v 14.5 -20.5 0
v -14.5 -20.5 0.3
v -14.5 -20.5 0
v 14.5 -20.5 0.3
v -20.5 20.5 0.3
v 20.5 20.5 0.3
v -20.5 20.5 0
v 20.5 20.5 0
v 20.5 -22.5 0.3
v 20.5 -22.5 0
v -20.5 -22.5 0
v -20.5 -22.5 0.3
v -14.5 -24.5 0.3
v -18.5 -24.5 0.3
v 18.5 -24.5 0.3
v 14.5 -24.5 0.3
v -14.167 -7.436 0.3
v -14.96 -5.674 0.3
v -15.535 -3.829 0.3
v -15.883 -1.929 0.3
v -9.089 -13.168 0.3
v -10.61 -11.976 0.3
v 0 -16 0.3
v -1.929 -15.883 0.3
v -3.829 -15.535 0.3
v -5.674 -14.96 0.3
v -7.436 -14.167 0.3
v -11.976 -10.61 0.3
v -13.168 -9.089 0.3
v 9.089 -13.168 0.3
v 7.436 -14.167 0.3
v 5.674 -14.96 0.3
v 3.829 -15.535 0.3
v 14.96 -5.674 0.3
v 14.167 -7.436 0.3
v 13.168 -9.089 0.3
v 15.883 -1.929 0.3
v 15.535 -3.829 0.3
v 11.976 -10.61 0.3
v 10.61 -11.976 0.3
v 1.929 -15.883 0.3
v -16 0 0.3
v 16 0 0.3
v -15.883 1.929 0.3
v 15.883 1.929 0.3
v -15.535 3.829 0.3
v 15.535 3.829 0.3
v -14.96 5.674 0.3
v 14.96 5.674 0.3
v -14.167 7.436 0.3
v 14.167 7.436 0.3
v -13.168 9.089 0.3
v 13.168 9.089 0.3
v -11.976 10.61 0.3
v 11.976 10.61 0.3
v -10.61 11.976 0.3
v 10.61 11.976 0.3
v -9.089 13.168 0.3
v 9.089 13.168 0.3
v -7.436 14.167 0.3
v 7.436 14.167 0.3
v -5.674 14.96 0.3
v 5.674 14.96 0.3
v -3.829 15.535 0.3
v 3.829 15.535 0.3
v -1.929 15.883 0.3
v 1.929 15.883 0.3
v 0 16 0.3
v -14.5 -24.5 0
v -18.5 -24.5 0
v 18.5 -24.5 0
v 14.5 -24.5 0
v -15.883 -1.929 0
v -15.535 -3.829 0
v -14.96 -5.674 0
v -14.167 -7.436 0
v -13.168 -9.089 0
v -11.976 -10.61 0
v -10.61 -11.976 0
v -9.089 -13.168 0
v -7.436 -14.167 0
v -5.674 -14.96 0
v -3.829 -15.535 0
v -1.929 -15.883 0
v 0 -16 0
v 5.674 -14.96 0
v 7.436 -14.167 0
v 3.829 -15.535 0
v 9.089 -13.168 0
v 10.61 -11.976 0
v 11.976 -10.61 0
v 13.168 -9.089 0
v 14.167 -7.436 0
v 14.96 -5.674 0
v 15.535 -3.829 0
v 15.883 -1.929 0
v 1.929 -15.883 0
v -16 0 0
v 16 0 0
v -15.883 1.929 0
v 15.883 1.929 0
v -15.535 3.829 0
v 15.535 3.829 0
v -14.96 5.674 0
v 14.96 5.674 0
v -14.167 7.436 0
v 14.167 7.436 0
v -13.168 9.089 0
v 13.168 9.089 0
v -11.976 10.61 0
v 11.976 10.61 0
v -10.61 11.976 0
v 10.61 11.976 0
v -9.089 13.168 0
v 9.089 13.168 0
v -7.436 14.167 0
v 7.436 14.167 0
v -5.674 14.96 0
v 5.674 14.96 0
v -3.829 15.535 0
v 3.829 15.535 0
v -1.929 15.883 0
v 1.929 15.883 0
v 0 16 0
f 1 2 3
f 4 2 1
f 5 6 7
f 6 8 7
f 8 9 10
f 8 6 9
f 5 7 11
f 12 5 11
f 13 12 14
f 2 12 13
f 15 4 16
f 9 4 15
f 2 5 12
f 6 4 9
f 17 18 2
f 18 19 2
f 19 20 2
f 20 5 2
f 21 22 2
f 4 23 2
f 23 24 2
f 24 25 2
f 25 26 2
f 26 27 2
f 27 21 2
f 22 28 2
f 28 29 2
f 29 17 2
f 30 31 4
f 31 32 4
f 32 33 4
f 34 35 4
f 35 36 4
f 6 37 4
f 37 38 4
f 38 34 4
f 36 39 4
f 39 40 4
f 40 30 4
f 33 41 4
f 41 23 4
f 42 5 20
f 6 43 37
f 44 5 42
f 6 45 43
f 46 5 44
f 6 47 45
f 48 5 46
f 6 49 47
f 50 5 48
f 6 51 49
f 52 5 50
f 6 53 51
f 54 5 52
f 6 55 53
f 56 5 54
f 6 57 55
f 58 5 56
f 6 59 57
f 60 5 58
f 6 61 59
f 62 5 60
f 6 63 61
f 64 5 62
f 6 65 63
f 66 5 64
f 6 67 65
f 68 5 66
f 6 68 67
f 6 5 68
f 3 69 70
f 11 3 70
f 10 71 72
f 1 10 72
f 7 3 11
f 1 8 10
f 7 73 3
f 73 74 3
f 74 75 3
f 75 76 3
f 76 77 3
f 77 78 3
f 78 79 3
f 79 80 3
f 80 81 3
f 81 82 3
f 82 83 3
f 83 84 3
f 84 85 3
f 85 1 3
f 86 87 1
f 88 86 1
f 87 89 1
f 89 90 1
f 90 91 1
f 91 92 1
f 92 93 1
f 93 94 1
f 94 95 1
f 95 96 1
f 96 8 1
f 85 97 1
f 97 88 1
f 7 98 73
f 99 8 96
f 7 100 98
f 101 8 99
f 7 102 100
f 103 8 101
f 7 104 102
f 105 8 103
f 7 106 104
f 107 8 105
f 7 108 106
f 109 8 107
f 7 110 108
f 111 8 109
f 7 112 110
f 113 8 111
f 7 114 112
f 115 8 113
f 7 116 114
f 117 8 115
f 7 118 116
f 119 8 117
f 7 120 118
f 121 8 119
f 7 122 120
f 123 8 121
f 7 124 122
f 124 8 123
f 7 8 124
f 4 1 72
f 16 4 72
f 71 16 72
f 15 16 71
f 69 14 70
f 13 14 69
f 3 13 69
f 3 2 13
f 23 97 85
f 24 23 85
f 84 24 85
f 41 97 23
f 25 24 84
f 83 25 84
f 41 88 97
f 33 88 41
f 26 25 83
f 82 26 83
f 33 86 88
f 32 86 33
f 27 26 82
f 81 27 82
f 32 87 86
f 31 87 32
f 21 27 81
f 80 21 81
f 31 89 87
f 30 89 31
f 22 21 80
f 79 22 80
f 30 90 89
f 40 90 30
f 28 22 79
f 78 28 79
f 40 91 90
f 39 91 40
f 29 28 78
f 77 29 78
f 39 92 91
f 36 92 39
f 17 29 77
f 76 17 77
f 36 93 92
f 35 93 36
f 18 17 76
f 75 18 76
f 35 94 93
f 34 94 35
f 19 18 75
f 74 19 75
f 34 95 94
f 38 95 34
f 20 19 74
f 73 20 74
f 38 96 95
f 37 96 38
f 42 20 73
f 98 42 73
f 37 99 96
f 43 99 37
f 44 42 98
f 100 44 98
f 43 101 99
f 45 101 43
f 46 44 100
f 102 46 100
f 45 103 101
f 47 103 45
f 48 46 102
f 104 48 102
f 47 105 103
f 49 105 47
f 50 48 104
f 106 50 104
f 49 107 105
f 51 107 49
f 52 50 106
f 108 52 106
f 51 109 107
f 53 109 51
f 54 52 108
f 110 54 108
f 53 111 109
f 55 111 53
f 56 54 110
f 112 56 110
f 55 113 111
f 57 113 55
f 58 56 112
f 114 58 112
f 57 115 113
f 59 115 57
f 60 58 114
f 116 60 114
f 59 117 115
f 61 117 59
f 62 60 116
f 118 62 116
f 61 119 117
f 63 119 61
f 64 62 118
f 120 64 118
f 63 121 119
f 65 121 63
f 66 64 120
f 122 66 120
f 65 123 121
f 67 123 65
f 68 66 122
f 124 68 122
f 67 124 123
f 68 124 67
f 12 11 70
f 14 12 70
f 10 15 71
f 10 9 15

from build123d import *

# Parameters (mm, degrees)
ESQUISSE1_W             = 41
ESQUISSE1_H             = 41
BOSS_EXTRU_1_DEPTH      = 0.3
ESQUISSE2_W             = 6
ESQUISSE2_H             = 4
BOSS_EXTRU_2_DEPTH      = 0.3
ESQUISSE3_R             = 12.5
ENL_V_MAT_EXTRU_1_DEPTH = 1.3
ESQUISSE4_R             = 16
ENL_V_MAT_EXTRU_2_DEPTH = 1.3
CHANFREIN1_SIZE         = 2
CHANFREIN2_SIZE         = 2
ESQUISSE6_W             = 6
ESQUISSE6_H             = 4
ENL_V_MAT_EXTRU_4_DEPTH = 1.3


with BuildPart() as part:
    # Esquisse1 → Boss.-Extru.1 (new body)
    with BuildSketch(Plane.XY):
        Rectangle(ESQUISSE1_W, ESQUISSE1_H)
    extrude(amount=BOSS_EXTRU_1_DEPTH)

    # Esquisse2 → Boss.-Extru.2 (add)
    with BuildSketch(Plane(origin=(0, 0, 0), x_dir=(-1, 0, 0), z_dir=(0, 0, -1))):
        with Locations((17.5, 22.5)):
            Rectangle(ESQUISSE2_W, ESQUISSE2_H)
        with Locations((-17.5, -22.5)):
            Rectangle(ESQUISSE2_W, ESQUISSE2_H)
        with Locations((17.5, -22.5)):
            Rectangle(ESQUISSE2_W, ESQUISSE2_H)
    extrude(amount=-BOSS_EXTRU_2_DEPTH)

    # Esquisse3 → Enlèv. mat.-Extru.1 (cut, through all)
    with BuildSketch(Plane(origin=(0, 0, 0), x_dir=(-1, 0, 0), z_dir=(0, 0, -1))):
        Circle(ESQUISSE3_R)
    extrude(amount=-ENL_V_MAT_EXTRU_1_DEPTH, mode=Mode.SUBTRACT)

    # Esquisse4 → Enlèv. mat.-Extru.2 (cut, through all)
    with BuildSketch(Plane(origin=(0, 0, 0), x_dir=(-1, 0, 0), z_dir=(0, 0, -1))):
        Circle(ESQUISSE4_R)
    extrude(amount=-ENL_V_MAT_EXTRU_2_DEPTH, mode=Mode.SUBTRACT)

    # Chanfrein1
    chanfrein1_edges = [part.edges().sort_by_distance(p)[0] for p in [
        (-20.5, -24.5, 0.15),
    ]]
    chamfer(chanfrein1_edges, length=CHANFREIN1_SIZE)

    # Chanfrein2
    chanfrein2_edges = [part.edges().sort_by_distance(p)[0] for p in [
        (20.5, -24.5, 0.15),
    ]]
    chamfer(chanfrein2_edges, length=CHANFREIN2_SIZE)

    # Esquisse6 → Enlèv. mat.-Extru.4 (cut, through all)
    with BuildSketch(Plane(origin=(0, 0, 0), x_dir=(-1, 0, 0), z_dir=(0, 0, -1))):
        with Locations((17.5, 22.5)):
            Rectangle(ESQUISSE6_W, ESQUISSE6_H)
    extrude(amount=-ENL_V_MAT_EXTRU_4_DEPTH, mode=Mode.SUBTRACT)


solid = part.part
